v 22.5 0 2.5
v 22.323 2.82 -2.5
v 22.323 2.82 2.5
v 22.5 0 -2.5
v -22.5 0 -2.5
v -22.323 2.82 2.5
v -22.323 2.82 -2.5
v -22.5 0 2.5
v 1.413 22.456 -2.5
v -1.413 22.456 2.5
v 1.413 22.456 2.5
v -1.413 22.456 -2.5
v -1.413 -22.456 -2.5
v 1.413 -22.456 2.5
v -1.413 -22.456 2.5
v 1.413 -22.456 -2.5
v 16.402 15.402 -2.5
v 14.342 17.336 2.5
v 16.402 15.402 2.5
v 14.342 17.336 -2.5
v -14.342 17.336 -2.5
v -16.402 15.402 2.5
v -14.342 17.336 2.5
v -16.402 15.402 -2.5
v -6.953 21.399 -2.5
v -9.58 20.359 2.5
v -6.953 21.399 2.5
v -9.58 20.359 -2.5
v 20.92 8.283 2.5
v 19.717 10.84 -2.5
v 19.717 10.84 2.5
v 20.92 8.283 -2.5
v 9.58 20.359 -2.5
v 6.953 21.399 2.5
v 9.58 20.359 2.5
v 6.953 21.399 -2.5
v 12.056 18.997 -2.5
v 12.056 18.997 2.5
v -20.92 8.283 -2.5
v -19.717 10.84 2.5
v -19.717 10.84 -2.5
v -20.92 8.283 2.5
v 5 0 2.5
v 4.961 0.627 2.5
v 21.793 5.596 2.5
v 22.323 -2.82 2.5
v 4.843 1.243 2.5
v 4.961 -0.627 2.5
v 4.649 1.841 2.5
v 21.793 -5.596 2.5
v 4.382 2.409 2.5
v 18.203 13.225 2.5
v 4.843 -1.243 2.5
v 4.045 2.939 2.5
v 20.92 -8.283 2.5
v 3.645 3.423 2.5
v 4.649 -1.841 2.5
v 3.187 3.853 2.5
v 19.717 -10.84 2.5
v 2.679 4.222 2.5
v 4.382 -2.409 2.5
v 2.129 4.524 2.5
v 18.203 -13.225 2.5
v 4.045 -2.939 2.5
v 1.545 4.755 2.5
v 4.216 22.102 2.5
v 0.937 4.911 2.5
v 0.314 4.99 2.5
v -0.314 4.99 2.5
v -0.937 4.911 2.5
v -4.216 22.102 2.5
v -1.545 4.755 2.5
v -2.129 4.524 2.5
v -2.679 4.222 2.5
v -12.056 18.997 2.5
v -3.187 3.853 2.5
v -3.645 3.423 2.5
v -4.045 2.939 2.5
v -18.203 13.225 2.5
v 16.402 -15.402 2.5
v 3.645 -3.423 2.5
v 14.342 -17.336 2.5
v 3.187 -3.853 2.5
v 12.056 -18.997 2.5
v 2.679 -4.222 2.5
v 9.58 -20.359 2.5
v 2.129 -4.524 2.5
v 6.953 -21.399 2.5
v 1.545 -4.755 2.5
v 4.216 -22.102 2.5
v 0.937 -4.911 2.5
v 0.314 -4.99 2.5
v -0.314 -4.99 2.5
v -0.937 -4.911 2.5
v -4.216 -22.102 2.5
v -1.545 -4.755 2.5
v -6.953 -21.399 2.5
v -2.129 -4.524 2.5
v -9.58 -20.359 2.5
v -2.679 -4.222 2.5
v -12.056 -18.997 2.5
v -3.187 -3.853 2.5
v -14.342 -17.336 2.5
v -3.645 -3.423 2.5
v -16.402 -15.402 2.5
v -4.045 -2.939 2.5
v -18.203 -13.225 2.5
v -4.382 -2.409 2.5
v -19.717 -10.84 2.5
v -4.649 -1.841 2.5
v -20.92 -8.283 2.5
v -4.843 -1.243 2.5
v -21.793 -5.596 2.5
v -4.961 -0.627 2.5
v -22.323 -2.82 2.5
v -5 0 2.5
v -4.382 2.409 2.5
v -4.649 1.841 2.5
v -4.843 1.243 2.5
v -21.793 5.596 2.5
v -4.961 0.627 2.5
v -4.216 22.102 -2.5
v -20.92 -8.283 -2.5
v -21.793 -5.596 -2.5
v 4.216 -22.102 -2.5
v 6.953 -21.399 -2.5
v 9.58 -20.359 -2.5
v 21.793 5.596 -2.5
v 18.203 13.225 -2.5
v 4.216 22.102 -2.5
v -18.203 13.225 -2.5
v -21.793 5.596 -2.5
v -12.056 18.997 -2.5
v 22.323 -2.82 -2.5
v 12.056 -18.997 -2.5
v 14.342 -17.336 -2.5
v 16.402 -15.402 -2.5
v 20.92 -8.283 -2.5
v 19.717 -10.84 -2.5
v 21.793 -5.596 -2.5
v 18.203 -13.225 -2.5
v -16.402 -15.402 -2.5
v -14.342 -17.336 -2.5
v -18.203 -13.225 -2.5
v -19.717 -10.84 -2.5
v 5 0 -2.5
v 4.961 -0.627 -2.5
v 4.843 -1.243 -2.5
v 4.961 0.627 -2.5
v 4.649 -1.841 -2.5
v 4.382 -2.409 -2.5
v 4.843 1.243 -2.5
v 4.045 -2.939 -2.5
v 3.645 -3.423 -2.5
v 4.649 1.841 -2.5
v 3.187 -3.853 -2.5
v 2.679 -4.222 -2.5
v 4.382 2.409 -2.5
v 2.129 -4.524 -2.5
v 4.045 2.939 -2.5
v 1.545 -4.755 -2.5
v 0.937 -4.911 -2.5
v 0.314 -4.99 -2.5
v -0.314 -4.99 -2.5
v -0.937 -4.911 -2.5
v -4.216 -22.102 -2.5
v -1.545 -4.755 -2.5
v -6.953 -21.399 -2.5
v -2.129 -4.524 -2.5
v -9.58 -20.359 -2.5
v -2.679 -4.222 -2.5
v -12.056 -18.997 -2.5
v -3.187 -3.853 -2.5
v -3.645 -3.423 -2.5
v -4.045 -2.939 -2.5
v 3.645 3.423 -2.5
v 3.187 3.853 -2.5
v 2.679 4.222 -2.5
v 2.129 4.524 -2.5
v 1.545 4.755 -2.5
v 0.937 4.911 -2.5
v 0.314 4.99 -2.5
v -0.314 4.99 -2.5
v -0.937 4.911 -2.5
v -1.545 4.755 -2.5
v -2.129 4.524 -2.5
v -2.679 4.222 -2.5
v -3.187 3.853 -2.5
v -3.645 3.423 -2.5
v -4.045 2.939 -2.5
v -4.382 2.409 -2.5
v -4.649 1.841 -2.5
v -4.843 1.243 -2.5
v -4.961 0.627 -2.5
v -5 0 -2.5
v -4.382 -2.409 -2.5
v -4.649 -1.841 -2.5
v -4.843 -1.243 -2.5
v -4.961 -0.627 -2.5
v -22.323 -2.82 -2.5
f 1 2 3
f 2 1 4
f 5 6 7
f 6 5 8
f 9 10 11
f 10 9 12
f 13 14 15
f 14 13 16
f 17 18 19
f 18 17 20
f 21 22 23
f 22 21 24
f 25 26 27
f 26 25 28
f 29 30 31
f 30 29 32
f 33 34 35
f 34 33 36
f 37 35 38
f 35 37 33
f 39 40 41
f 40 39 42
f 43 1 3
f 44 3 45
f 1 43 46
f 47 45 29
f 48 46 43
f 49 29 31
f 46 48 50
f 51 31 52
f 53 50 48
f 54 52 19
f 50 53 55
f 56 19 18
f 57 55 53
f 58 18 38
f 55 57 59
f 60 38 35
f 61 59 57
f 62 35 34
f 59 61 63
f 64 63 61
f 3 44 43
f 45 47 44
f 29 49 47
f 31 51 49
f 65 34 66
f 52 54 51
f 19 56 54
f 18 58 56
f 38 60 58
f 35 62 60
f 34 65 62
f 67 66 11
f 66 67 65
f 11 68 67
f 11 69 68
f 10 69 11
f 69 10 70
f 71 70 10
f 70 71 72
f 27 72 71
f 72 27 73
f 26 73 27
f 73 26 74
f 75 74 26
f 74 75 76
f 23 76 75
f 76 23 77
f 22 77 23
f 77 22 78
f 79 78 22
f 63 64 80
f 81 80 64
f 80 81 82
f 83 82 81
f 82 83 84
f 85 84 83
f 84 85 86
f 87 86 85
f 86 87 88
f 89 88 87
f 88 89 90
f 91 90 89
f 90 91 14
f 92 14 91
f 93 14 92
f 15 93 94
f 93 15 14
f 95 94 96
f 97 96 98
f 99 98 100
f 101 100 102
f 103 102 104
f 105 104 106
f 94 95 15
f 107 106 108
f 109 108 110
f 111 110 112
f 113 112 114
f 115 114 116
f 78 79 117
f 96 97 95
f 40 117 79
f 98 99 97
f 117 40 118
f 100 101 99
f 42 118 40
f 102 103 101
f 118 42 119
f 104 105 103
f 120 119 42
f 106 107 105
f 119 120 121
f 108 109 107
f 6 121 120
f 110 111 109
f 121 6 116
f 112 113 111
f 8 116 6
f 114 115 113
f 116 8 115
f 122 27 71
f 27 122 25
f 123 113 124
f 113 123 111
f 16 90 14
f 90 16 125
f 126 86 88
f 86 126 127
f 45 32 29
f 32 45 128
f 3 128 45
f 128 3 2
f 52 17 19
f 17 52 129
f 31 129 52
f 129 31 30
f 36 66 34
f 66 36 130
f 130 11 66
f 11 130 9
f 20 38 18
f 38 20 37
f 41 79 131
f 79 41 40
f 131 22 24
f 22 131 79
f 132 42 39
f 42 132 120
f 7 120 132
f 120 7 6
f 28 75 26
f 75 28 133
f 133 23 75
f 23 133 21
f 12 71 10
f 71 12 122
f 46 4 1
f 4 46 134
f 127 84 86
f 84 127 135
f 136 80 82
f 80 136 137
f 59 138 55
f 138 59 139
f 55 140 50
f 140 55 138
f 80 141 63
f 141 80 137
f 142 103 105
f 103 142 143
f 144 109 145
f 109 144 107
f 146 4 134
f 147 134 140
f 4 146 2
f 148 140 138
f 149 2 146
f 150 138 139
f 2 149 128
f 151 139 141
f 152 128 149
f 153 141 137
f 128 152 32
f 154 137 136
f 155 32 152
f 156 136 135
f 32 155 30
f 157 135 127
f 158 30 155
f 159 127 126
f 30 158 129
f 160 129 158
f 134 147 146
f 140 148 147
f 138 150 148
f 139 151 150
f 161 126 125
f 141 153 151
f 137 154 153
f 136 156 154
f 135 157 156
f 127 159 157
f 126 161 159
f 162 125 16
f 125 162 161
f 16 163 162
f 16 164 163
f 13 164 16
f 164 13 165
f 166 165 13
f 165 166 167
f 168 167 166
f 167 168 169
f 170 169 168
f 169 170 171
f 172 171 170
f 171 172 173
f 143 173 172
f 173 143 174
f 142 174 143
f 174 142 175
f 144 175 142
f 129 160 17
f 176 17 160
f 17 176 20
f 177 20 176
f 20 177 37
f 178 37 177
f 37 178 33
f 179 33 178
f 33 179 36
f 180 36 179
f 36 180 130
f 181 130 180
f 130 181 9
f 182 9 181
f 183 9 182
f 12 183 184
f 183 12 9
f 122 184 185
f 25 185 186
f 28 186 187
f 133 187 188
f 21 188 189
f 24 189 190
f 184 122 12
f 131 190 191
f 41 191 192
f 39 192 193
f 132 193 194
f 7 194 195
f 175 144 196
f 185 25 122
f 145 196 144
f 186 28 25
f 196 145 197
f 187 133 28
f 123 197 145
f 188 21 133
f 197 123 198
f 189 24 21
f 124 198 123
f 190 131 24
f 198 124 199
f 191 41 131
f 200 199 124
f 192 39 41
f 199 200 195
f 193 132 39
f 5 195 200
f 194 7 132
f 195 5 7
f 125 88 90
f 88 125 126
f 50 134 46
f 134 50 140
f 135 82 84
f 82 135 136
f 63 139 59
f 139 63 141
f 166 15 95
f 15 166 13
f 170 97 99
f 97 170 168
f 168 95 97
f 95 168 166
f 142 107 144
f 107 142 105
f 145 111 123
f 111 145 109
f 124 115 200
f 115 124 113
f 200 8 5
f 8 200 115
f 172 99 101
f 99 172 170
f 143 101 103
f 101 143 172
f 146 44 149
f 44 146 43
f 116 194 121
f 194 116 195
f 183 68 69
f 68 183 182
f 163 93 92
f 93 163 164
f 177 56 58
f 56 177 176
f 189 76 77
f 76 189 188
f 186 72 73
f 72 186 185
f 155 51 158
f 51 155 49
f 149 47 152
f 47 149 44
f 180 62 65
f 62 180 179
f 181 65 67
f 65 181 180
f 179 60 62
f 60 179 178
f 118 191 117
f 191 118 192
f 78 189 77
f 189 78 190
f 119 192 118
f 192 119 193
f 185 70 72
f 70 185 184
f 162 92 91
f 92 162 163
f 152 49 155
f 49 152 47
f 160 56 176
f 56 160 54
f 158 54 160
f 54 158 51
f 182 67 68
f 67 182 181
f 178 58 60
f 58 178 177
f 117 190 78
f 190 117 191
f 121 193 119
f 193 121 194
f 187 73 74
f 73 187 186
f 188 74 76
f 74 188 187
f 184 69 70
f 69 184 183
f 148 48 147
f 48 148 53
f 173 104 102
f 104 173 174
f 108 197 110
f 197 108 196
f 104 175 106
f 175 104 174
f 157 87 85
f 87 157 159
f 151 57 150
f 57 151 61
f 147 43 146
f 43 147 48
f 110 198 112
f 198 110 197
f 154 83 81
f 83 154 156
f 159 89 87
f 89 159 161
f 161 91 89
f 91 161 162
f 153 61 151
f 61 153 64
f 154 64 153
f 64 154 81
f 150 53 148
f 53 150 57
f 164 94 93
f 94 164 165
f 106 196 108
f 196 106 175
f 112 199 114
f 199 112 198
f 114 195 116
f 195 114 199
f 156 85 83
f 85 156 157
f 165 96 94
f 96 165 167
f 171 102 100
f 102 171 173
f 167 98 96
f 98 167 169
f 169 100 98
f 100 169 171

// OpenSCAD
$fn = 50;


difference() {
	union() {
		translate(v = [0, 0, -2.5000000000]) {
			cylinder(h = 5, r = 22.5000000000);
		}
	}
	union() {
		translate(v = [0, 0, -100.0000000000]) {
			cylinder(h = 200, r = 5);
		}
	}
}
